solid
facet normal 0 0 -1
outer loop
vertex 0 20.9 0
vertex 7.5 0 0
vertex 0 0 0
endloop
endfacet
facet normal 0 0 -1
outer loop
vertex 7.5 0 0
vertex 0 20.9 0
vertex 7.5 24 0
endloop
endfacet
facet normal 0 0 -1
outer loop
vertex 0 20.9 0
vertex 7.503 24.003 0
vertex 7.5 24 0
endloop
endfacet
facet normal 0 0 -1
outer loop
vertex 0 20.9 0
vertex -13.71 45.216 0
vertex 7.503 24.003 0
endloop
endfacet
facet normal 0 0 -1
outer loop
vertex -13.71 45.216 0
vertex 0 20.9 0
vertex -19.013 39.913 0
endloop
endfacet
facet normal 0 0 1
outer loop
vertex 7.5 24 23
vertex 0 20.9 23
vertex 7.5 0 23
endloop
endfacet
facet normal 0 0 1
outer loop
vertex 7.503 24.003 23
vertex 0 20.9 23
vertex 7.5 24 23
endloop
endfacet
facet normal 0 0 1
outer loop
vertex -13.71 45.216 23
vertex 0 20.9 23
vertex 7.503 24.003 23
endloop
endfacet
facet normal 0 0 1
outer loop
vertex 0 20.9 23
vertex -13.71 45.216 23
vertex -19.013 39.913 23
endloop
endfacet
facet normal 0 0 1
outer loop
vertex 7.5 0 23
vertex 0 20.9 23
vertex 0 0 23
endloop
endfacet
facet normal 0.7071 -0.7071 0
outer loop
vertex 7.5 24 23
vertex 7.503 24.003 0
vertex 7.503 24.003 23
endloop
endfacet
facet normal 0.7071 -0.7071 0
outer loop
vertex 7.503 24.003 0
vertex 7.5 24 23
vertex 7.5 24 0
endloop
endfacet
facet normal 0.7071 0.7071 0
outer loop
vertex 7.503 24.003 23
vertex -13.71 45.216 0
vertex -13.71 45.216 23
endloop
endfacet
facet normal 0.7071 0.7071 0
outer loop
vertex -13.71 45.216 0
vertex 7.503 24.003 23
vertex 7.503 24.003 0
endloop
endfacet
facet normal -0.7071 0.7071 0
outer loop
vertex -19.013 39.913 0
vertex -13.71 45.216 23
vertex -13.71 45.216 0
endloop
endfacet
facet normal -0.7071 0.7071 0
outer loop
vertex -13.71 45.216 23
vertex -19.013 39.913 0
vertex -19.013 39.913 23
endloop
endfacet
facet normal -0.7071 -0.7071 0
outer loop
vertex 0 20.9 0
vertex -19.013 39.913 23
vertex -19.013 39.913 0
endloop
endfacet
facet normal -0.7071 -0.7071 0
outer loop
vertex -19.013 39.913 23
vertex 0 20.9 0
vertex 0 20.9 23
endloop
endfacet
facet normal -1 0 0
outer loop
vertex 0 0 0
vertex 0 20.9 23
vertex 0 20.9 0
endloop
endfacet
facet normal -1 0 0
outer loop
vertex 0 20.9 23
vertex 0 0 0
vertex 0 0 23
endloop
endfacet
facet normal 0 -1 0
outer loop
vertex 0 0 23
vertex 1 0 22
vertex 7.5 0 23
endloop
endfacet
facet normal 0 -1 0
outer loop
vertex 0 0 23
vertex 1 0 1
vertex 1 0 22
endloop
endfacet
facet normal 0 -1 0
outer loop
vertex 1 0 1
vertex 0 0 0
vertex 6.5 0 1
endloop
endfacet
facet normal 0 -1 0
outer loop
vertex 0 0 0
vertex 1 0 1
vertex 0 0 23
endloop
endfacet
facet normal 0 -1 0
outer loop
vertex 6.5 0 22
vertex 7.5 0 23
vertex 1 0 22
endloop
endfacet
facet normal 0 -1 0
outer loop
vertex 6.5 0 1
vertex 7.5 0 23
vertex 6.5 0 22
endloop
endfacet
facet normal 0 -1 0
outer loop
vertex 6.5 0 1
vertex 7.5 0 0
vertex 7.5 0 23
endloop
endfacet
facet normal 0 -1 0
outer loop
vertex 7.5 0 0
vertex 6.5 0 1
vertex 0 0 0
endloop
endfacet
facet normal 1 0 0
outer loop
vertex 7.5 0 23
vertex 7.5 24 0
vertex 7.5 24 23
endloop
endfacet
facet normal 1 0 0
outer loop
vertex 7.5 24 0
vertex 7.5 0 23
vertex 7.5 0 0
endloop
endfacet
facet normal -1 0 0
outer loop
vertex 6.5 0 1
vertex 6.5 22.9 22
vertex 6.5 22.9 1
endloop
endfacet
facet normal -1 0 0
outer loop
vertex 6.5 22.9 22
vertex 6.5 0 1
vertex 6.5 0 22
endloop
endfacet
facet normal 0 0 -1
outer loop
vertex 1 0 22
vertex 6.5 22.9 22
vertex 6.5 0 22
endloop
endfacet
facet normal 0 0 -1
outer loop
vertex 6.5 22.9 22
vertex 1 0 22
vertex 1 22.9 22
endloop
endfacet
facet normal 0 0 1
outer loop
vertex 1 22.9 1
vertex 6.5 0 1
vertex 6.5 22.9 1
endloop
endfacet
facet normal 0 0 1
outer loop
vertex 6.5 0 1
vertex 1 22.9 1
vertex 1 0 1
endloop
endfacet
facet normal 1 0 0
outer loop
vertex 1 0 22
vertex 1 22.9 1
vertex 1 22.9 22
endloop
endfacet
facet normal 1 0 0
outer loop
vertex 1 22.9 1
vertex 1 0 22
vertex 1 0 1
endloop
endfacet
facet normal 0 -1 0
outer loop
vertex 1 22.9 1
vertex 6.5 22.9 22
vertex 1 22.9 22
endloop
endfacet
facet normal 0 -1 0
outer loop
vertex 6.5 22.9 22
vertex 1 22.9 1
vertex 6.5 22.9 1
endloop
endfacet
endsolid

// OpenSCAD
//circle(d=50);
difference(){
linear_extrude(21+2){
square([5.5+2,24]);
translate([2.2,14.7+4,0])
rotate([0,0,45])
square([5.5+2,30]);
}
translate([1,-0.1,1])
cube([5.5,23,21]);
}
